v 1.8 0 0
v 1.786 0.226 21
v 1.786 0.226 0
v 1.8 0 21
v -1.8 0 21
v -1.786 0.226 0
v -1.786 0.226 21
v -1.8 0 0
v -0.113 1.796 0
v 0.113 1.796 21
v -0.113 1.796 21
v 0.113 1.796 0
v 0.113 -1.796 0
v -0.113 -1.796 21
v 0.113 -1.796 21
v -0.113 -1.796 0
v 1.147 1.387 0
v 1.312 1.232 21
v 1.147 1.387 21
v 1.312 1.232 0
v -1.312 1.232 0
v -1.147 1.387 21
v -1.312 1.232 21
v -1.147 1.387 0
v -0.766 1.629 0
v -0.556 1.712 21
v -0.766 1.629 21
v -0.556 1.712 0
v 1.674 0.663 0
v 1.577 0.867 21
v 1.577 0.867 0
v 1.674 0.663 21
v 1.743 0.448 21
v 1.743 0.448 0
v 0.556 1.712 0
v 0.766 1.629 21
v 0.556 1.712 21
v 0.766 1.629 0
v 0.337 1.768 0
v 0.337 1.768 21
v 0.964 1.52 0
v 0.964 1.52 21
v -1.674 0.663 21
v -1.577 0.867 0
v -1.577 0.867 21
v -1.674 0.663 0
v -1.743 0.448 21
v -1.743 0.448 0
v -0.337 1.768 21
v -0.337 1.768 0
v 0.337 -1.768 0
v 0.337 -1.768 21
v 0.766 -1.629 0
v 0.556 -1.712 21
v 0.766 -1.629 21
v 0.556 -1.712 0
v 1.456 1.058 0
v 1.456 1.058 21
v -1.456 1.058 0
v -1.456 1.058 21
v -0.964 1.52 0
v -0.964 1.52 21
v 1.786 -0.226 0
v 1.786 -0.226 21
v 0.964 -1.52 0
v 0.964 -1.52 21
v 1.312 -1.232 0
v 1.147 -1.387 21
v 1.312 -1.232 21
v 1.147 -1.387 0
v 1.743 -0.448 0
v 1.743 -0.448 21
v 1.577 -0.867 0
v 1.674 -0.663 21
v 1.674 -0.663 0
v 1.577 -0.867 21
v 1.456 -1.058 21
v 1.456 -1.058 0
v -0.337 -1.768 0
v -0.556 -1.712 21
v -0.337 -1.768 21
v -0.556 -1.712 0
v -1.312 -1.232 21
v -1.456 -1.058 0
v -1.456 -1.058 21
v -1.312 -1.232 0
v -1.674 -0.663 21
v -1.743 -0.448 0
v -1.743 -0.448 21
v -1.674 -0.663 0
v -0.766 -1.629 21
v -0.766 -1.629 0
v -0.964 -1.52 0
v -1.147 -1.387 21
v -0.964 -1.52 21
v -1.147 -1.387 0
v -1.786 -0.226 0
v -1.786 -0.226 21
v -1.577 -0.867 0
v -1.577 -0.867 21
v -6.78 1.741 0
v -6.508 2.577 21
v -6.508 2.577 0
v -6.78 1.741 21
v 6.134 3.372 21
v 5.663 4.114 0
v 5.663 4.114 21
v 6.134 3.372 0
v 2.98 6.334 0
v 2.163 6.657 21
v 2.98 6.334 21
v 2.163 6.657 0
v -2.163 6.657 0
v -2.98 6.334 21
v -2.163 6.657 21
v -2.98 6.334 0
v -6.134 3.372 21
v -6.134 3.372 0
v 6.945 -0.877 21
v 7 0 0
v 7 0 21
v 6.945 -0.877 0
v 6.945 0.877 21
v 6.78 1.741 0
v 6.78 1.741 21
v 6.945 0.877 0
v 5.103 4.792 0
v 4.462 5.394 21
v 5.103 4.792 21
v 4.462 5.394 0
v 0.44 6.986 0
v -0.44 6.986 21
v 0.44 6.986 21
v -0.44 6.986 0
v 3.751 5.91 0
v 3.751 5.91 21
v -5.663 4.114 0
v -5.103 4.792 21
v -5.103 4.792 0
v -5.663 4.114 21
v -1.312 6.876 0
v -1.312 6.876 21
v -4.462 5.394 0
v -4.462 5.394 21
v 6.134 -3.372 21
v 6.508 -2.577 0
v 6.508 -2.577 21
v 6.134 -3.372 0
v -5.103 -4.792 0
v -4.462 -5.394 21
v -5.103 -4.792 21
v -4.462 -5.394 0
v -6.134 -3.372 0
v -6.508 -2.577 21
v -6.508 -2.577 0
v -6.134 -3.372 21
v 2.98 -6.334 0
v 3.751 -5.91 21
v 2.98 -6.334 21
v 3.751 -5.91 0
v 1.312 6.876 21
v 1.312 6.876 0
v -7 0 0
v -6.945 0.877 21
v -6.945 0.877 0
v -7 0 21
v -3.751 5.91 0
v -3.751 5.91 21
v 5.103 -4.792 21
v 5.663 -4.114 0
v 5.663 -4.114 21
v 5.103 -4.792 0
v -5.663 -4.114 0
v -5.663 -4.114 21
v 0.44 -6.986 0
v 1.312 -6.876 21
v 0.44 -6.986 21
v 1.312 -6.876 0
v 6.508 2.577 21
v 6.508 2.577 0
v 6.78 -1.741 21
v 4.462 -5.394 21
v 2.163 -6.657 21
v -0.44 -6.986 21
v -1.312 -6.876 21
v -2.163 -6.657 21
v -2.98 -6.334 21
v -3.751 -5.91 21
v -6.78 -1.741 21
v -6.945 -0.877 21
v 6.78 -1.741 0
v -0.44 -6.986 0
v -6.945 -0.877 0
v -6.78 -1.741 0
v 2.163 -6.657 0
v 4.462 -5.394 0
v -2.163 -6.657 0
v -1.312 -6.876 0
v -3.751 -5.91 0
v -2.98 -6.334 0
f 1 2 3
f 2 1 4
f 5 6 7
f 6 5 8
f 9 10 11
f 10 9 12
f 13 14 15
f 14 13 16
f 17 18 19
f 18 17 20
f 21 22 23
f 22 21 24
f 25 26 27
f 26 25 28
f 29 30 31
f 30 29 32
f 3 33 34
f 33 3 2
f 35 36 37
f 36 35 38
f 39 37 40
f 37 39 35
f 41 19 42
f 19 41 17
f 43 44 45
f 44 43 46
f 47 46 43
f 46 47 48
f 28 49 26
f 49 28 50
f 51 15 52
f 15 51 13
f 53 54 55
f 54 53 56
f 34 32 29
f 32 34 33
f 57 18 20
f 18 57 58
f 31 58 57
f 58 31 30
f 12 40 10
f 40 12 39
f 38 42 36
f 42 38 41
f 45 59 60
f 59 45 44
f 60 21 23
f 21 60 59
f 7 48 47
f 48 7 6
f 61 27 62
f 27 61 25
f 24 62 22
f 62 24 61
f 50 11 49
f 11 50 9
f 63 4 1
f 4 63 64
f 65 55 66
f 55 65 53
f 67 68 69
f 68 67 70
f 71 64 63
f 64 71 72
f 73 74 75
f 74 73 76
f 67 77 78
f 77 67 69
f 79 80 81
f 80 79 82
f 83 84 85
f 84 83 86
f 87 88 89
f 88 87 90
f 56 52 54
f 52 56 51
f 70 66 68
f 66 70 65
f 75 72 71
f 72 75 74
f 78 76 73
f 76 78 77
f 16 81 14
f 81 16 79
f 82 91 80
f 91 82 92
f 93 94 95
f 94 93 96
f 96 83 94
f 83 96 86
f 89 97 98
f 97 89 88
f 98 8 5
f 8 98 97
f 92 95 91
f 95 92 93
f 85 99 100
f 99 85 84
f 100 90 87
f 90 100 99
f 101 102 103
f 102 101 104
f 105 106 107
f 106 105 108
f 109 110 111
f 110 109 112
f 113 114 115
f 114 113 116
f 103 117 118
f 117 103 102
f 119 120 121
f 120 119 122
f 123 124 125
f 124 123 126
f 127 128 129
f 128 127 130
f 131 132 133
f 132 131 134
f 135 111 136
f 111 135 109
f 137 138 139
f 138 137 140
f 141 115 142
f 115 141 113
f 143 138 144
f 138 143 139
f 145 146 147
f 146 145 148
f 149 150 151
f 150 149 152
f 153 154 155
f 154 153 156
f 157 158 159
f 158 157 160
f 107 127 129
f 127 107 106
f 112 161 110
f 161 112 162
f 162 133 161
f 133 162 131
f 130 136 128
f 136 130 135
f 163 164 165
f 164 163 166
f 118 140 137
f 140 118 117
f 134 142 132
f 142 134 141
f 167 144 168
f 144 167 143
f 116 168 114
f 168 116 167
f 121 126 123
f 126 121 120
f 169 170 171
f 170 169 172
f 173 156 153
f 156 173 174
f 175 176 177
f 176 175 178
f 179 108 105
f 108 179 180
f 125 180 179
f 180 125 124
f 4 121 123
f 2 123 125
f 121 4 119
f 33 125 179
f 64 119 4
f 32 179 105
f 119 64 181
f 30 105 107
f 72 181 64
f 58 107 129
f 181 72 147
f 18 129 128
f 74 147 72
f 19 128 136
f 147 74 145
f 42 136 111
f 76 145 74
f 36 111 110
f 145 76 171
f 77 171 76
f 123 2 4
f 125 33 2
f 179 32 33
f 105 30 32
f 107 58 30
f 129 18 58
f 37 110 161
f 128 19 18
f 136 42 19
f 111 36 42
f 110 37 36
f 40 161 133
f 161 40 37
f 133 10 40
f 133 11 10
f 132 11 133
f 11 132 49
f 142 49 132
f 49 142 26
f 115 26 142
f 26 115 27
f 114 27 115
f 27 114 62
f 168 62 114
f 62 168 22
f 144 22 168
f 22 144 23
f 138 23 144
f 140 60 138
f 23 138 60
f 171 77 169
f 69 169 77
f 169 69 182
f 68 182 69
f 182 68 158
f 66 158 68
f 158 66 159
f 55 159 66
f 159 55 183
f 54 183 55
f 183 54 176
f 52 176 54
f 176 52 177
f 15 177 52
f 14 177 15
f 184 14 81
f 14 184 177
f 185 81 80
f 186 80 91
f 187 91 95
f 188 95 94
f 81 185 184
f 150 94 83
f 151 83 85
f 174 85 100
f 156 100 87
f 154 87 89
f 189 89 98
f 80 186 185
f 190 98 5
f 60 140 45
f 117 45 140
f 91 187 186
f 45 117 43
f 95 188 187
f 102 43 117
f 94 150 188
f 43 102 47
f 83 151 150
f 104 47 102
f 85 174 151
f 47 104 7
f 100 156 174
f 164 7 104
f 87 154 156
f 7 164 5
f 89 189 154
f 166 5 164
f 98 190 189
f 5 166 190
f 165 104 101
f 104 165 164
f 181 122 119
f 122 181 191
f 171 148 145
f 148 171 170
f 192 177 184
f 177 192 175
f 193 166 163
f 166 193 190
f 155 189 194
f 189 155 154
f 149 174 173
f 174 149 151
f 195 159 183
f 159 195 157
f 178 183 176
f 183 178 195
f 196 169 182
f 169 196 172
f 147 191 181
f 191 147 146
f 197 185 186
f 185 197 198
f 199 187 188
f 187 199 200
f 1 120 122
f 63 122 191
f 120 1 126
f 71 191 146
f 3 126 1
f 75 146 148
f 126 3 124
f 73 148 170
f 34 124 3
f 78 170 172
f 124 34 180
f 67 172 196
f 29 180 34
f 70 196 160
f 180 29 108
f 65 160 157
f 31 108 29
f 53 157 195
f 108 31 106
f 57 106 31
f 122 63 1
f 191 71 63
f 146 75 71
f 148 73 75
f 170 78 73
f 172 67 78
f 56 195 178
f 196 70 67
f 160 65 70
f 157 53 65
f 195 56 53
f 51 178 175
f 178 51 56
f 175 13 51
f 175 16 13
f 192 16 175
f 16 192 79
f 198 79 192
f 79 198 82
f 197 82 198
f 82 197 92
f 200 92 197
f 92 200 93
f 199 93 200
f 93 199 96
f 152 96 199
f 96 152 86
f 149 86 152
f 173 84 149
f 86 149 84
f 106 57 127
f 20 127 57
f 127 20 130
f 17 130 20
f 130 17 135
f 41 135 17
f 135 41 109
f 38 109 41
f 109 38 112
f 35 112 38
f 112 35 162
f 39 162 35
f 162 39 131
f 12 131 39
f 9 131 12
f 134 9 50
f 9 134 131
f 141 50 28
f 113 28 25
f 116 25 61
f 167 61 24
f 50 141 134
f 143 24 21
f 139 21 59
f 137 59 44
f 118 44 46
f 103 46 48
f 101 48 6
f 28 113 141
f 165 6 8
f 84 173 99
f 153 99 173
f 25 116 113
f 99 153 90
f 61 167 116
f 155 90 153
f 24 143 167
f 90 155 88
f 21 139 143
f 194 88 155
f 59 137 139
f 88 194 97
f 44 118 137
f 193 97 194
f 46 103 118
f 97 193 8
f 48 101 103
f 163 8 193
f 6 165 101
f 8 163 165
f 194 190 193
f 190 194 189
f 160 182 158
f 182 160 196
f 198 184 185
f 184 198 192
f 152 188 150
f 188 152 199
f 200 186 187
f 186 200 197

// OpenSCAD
$fn = 50;


difference() {
	union() {
		cylinder(h = 21, r = 7.0000000000);
	}
	union() {
		translate(v = [0.0000000000, 0.0000000000, -100.0000000000]) {
			cylinder(h = 200, r = 1.8000000000);
		}
		cylinder(h = 21, r = 1.8000000000);
		cylinder(h = 21, r = 1.8000000000);
		cylinder(h = 21, r = 1.8000000000);
	}
}
